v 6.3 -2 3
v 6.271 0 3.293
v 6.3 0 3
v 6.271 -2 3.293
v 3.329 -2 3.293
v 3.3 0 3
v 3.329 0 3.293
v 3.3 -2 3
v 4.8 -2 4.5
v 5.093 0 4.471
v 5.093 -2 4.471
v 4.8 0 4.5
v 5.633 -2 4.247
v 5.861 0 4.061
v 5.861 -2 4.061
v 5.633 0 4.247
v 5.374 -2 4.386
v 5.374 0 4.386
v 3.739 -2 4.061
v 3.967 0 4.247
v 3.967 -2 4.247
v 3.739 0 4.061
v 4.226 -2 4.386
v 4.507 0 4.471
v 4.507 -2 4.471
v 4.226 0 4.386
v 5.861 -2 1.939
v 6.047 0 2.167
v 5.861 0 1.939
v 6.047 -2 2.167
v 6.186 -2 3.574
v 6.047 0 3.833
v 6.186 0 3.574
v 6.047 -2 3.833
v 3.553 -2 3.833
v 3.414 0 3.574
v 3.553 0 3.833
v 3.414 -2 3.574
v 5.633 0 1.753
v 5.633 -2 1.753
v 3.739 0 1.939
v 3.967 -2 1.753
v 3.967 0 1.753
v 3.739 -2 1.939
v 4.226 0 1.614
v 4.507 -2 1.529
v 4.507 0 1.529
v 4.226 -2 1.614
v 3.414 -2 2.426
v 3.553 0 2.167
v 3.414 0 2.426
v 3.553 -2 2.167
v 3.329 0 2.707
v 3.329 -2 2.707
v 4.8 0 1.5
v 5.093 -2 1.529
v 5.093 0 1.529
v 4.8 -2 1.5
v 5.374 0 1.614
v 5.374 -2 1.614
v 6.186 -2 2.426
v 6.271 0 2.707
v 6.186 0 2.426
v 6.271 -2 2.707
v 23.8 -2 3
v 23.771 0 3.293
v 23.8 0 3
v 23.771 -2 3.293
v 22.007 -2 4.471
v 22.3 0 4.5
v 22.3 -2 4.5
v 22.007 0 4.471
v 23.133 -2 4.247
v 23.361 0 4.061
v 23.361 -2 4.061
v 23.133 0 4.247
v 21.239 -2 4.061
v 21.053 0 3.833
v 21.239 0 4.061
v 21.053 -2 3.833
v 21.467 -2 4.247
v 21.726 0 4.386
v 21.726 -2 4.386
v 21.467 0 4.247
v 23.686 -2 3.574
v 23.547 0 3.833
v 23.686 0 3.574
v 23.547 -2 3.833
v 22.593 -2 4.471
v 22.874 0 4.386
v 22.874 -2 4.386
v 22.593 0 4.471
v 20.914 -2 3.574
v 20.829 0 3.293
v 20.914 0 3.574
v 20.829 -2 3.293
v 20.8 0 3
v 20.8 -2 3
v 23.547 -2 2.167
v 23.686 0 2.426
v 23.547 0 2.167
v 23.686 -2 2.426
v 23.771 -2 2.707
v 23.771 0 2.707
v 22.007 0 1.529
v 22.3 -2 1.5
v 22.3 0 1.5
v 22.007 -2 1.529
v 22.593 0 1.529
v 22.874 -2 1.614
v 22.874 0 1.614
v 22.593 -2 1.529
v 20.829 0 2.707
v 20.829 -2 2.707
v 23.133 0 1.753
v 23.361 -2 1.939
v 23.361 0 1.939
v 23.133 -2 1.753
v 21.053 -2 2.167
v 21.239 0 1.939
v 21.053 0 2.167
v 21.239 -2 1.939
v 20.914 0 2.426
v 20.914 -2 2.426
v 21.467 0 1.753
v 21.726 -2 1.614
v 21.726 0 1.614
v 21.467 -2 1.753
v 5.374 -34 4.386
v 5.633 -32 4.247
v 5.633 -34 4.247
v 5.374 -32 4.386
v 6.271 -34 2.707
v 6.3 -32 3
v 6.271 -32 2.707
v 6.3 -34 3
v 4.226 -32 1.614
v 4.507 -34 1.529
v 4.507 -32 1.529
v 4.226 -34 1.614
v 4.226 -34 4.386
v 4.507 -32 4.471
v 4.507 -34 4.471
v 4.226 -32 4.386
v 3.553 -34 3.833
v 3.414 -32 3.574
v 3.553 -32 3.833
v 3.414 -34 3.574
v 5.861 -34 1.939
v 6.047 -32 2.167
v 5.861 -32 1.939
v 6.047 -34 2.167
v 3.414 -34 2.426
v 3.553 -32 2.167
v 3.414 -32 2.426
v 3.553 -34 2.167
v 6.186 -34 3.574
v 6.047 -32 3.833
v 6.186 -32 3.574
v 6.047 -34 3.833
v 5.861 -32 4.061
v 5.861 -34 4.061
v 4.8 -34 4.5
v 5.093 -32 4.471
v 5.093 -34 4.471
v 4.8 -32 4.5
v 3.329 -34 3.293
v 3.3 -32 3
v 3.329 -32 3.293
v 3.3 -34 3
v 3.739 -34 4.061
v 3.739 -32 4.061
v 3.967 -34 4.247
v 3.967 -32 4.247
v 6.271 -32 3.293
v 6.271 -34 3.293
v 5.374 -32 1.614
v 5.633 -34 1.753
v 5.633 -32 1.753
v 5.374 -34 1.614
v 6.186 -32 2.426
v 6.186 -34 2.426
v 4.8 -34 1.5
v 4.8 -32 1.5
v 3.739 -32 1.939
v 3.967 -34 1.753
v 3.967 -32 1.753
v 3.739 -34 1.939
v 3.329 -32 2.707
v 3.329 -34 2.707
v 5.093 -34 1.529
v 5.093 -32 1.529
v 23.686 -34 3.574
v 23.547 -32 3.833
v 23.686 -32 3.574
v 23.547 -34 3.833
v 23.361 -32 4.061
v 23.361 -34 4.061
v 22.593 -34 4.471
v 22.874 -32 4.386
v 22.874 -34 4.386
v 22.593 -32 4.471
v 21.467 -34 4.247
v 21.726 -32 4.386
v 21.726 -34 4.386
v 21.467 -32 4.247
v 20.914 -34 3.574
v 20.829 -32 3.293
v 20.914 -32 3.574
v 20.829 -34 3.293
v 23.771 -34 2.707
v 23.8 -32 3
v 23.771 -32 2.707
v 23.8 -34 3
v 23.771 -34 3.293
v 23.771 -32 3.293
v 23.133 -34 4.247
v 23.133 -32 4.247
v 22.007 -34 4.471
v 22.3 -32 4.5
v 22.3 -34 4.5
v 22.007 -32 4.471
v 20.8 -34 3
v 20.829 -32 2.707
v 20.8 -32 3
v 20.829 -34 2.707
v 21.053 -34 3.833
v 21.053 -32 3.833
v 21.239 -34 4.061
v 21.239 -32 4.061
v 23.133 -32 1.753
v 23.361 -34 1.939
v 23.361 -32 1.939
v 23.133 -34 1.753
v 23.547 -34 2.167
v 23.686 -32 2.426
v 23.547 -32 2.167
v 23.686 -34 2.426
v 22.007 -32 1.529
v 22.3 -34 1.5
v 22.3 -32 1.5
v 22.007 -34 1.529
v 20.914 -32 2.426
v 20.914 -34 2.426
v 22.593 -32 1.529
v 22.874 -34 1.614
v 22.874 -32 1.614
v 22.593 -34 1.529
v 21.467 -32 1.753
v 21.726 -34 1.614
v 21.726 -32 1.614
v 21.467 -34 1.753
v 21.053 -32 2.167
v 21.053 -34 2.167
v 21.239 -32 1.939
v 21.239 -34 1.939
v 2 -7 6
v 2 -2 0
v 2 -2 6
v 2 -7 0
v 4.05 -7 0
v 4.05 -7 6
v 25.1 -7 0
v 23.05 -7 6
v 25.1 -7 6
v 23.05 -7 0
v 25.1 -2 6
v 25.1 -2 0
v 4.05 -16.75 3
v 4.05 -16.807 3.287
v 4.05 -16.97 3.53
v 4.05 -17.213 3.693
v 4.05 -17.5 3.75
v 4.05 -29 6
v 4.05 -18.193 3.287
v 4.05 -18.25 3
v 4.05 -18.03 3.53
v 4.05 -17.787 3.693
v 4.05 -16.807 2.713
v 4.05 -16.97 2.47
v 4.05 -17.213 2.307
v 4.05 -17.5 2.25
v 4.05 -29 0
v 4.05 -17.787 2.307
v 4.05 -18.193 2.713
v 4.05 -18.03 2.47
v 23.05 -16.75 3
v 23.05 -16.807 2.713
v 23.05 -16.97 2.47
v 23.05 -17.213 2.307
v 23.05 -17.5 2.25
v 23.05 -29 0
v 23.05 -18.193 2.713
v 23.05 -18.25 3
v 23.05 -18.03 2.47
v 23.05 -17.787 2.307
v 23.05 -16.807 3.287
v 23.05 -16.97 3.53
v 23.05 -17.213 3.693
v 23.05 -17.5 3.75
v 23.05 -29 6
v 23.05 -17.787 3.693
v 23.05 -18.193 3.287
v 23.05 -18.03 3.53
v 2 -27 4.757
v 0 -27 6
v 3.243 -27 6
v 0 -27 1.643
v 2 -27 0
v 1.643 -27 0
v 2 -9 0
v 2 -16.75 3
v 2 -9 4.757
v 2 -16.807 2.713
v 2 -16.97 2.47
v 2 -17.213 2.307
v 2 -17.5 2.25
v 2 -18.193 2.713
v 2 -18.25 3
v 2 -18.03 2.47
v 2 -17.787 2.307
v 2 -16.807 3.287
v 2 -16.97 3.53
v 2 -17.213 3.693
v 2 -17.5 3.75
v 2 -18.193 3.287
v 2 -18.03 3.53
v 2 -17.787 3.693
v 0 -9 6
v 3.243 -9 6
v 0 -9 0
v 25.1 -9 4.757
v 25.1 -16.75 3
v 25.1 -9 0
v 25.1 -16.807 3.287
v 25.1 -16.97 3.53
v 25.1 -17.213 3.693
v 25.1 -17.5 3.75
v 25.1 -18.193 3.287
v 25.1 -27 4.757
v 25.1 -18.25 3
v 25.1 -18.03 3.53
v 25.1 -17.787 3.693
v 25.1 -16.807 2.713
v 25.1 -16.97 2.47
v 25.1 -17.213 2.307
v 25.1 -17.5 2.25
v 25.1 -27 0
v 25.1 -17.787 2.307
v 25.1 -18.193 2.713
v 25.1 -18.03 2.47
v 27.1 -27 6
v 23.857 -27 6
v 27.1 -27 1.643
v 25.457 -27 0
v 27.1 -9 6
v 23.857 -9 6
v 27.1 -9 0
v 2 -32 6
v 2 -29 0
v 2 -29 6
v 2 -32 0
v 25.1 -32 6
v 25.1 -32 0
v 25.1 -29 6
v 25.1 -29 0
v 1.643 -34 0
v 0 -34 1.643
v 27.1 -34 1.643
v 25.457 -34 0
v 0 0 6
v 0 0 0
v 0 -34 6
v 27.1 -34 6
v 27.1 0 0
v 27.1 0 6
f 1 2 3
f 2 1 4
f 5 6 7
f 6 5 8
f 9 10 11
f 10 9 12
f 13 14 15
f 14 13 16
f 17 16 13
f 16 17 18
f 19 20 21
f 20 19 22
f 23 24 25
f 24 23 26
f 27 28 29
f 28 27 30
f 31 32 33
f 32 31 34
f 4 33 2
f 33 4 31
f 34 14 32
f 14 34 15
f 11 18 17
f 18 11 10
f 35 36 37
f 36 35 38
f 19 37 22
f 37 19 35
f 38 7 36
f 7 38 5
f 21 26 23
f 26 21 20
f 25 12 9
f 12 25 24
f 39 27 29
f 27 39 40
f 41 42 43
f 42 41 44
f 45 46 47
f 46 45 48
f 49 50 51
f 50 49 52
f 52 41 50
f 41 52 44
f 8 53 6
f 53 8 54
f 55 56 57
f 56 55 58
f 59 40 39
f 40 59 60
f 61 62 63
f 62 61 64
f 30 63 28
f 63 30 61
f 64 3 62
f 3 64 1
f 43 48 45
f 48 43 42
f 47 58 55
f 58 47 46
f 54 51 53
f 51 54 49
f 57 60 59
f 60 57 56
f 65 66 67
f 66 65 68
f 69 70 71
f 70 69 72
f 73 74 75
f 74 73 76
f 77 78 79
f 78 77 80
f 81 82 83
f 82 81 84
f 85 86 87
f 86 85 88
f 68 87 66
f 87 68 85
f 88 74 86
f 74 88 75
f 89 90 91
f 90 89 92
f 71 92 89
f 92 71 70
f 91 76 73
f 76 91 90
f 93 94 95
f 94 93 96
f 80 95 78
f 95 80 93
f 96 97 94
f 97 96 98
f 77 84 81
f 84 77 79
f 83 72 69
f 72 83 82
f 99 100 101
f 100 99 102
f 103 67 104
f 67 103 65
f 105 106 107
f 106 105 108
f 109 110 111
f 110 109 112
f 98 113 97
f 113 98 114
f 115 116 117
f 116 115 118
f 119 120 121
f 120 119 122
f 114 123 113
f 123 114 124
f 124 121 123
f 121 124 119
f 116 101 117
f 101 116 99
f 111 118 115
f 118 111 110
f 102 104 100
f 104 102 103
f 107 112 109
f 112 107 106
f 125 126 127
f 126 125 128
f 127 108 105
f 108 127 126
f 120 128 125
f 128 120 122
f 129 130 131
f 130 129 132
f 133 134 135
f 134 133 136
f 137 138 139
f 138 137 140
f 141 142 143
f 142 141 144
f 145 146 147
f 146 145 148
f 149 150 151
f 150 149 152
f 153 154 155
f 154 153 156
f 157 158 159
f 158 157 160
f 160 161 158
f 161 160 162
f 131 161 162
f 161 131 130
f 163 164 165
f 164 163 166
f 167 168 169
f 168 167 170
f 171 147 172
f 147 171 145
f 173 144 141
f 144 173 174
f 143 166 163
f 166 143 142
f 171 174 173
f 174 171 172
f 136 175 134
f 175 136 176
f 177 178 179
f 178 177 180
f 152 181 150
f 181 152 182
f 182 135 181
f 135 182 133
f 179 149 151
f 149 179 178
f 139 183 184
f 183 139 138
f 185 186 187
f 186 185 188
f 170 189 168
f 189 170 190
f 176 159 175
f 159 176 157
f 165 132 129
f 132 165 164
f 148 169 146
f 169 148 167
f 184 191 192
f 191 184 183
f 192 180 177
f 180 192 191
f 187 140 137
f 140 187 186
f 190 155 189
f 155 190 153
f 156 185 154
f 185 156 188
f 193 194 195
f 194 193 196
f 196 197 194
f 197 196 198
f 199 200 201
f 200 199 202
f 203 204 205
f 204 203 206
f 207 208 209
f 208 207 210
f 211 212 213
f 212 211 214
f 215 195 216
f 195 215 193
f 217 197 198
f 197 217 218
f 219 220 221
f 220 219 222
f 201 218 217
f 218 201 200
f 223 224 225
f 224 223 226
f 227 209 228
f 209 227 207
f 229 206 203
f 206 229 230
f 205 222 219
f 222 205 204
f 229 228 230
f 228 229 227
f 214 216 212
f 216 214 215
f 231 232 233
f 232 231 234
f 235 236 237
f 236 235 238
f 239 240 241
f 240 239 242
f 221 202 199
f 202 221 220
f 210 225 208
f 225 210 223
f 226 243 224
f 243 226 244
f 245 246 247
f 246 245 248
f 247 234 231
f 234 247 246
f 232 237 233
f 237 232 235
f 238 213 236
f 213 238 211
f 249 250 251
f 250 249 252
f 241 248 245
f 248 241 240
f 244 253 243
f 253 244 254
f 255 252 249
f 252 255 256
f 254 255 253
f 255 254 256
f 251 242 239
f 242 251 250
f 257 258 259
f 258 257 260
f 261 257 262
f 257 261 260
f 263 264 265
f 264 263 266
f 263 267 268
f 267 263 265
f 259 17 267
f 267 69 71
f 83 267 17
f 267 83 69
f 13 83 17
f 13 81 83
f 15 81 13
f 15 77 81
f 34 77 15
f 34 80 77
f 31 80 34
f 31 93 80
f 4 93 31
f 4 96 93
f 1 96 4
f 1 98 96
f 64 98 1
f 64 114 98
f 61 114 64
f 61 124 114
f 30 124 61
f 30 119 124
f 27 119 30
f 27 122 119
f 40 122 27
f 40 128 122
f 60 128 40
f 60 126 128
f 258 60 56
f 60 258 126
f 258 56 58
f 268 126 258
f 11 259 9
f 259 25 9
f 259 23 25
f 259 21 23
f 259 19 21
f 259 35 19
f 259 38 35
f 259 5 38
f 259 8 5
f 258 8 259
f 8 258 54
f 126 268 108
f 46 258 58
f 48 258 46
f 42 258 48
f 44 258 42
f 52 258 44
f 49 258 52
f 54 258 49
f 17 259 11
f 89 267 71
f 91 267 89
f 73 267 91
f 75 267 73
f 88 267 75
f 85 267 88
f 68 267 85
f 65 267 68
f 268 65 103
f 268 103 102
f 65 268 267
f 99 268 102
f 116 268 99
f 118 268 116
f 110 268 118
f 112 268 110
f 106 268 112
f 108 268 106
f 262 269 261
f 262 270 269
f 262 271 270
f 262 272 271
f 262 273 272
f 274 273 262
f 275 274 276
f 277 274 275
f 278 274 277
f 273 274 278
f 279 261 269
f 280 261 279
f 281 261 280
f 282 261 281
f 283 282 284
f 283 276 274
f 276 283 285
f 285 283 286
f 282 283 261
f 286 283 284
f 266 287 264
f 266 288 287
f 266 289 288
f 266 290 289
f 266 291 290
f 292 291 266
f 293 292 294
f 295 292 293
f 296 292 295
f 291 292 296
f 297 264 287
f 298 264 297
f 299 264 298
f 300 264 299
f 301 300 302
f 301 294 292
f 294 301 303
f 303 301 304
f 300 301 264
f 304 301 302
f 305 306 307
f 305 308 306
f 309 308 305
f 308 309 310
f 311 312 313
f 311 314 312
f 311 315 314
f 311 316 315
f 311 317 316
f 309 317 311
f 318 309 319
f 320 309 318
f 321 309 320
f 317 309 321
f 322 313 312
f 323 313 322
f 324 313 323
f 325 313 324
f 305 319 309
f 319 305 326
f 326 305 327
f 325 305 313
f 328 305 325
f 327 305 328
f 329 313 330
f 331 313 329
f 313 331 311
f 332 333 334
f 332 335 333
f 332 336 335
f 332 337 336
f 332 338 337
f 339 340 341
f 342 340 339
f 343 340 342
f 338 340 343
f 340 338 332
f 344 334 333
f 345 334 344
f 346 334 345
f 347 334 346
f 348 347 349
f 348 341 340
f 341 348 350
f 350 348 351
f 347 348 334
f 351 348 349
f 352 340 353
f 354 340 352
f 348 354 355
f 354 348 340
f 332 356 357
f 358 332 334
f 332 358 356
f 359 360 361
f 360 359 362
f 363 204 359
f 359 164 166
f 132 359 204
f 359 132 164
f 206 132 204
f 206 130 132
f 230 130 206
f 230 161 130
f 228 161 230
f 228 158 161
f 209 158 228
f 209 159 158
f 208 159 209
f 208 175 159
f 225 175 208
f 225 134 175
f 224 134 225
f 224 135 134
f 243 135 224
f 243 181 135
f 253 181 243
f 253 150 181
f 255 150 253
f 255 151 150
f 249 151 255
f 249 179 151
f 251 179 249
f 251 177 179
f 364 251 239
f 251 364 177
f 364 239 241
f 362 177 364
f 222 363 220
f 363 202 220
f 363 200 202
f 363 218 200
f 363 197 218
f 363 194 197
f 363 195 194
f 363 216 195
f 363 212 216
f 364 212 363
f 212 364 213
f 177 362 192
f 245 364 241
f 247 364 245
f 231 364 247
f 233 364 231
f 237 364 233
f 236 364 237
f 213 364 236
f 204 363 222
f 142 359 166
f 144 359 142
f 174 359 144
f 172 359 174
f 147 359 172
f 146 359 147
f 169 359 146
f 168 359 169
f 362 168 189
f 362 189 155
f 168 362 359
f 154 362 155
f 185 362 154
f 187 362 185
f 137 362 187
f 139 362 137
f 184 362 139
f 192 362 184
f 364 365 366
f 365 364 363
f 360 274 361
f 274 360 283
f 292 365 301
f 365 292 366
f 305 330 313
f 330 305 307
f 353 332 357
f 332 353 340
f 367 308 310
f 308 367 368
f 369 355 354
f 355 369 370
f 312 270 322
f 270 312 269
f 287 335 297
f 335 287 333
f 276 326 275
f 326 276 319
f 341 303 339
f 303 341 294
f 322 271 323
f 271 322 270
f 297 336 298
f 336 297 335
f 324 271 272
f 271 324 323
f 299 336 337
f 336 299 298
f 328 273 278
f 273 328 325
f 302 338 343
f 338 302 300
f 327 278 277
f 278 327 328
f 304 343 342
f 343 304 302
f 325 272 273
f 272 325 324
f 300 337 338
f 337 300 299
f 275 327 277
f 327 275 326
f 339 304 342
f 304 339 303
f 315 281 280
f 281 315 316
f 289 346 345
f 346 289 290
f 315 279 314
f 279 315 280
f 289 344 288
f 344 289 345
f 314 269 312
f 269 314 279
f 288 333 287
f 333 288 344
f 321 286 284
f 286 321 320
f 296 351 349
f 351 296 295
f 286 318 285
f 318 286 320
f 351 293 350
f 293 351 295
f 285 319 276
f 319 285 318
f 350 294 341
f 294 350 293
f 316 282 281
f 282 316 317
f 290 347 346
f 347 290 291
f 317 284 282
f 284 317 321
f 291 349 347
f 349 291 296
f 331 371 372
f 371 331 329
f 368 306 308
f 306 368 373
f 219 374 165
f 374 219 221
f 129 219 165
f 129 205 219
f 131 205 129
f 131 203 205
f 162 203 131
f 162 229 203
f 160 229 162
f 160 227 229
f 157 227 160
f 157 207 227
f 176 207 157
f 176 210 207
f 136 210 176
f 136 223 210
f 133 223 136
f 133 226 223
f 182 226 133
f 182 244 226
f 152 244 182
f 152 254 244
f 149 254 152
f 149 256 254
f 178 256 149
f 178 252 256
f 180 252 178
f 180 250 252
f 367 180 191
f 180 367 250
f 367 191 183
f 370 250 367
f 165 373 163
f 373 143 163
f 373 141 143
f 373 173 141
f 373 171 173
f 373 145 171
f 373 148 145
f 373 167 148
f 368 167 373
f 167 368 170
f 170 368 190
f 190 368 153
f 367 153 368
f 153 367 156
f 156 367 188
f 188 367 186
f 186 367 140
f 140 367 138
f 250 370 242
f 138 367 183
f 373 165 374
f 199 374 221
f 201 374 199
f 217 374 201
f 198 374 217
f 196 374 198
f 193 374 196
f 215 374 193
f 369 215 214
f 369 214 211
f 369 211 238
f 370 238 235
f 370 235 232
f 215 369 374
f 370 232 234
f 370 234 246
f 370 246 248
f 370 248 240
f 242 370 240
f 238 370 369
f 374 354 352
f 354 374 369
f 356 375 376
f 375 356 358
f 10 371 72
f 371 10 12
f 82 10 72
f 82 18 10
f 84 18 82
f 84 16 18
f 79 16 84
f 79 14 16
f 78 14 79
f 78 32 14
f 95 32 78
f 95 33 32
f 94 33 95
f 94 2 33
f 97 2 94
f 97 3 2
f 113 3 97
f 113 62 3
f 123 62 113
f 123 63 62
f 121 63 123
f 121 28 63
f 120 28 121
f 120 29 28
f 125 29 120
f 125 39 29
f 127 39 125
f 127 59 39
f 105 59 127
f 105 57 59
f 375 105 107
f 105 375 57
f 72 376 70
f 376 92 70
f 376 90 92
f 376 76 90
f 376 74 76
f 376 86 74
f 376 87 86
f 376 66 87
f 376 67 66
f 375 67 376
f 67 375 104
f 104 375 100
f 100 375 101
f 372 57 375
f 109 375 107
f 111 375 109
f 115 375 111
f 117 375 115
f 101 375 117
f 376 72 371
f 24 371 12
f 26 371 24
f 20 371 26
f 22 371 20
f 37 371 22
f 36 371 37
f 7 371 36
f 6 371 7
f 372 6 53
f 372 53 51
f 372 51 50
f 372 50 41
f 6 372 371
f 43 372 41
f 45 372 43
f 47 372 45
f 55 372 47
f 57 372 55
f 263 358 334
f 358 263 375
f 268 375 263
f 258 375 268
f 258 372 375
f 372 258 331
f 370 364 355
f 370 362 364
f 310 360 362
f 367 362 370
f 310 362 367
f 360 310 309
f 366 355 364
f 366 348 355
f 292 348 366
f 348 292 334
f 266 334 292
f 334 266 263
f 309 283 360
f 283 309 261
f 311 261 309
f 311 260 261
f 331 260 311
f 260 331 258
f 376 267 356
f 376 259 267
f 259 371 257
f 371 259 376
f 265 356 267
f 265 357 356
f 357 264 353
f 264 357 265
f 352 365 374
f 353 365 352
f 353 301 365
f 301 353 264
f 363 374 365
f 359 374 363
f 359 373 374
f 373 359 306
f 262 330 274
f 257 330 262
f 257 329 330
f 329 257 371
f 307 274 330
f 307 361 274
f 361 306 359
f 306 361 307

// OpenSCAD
/*

    Designed to fit a Runcam Mini in place of the front supports.

    The big-stepped end is the top, the existing top-plate sits *inside* that.

    The small-stepped end is the bottom, and sits *on* the bottom plate.

    The steps are big enough to fit M3 x 2.5mm nuts. The bolts should be M3
    12mm nylon.

*/

// Settings.
edge_radius = 2.8;
hole_wide = 17.5;
thickness = 2;
bolt_hole_radius = 1.5;
cam_above = 10.5;
cam_below = 11.5;
nut_height = 3;
cam_width = 19;
ring_depth = 6;

// Derived.
cam_height = cam_above + cam_below;
frame_width = (edge_radius*2) + hole_wide;
ring_width = frame_width + (thickness*2);
ring_height = cam_above + cam_below + (nut_height * 2) + thickness * 3;
frame_top_down = thickness;
cam_top_down = frame_top_down + thickness + nut_height;
prop_top_down = cam_top_down + thickness;
feet_top_down = cam_top_down + cam_height;
pivot_top_down = cam_top_down + cam_above;


// Make it!
rotate([90, 0, 0]) {
    ring();
}

module ring() {
    difference() {
        ringAdd();
        ringRemove();
    }
}

module ringAdd(){
    // outer box
    cube([ring_width, ring_depth, ring_height]);
}

module ringRemove(){
    translate([0, -1, 0]) {

        // frame top.
        translate([thickness, 0, frame_top_down]) {
            cube([frame_width, ring_depth + 2, thickness + nut_height]);
        }

        // Cam
        translate([((ring_width - cam_width) / 2), 0, cam_top_down - 1]){
            cube([cam_width, ring_depth + 2, cam_height + 2]);
        }

        // Props
        translate([-1, 0, prop_top_down]) {
            cube([thickness + 1, ring_depth + 2, cam_height - thickness*2]);
        }

        translate([ring_width-thickness, 0, prop_top_down]) {
            cube([thickness + 1, ring_depth + 2, cam_height - thickness*2]);
        }

        // Feet.
        translate([thickness, 0, feet_top_down]) {
            cube([frame_width, ring_depth + 2, nut_height]);
        }

        // Holes.
        translate([edge_radius + thickness, (ring_depth / 2) + 1, -1]) {
            cylinder(r=bolt_hole_radius, h=thickness+2, $fn=32);

            translate([hole_wide, 0, 0]) {
                cylinder(r=bolt_hole_radius, h=thickness+2, $fn=32);
            }
        }

        translate([edge_radius + thickness, (ring_depth / 2) + 1, feet_top_down + (nut_height + thickness) + 1]) {
            mirror([0, 0, 1]) {
                cylinder(r=bolt_hole_radius, h=thickness+2, $fn=32);

                translate([hole_wide, 0, 0]) {
                    cylinder(r=bolt_hole_radius, h=thickness+2, $fn=32);
                }
            }
        }
    }

    // Prop clearance chamfers
    translate([-1, ring_depth, prop_top_down]) {
        rotate([0, 0, -45]) {
            cube([thickness + 1, thickness + 1, cam_height - thickness*2]);
        }
    }

    mirror([1, 0, 0]) {
        translate([-ring_width - 1, ring_depth, prop_top_down]) {
            rotate([0, 0, -45]) {
                cube([thickness + 1, thickness + 1, cam_height - thickness*2]);
            }
        }
    }

    // ESC clearance chamfers
    translate([-thickness - 0.5, -0.1, feet_top_down - thickness - 1]) {
        rotate([0, 0, -45]) {
            cube([thickness + 1, thickness + 1, cam_height - thickness*2]);
        }
    }

    mirror([1, 0, 0]) {
        translate([-ring_width - thickness - 0.5, - 0.1, feet_top_down - thickness - 1]) {
            rotate([0, 0, -45]) {
                cube([thickness + 1, thickness + 1, cam_height - thickness*2]);
            }
        }
    }

    // Cam pivot
    translate([0, ring_depth/2, pivot_top_down]) {
        rotate([0, 90, 0]) {
            cylinder(r=0.75, h=ring_width, $fn=16);
        }
    }

}
